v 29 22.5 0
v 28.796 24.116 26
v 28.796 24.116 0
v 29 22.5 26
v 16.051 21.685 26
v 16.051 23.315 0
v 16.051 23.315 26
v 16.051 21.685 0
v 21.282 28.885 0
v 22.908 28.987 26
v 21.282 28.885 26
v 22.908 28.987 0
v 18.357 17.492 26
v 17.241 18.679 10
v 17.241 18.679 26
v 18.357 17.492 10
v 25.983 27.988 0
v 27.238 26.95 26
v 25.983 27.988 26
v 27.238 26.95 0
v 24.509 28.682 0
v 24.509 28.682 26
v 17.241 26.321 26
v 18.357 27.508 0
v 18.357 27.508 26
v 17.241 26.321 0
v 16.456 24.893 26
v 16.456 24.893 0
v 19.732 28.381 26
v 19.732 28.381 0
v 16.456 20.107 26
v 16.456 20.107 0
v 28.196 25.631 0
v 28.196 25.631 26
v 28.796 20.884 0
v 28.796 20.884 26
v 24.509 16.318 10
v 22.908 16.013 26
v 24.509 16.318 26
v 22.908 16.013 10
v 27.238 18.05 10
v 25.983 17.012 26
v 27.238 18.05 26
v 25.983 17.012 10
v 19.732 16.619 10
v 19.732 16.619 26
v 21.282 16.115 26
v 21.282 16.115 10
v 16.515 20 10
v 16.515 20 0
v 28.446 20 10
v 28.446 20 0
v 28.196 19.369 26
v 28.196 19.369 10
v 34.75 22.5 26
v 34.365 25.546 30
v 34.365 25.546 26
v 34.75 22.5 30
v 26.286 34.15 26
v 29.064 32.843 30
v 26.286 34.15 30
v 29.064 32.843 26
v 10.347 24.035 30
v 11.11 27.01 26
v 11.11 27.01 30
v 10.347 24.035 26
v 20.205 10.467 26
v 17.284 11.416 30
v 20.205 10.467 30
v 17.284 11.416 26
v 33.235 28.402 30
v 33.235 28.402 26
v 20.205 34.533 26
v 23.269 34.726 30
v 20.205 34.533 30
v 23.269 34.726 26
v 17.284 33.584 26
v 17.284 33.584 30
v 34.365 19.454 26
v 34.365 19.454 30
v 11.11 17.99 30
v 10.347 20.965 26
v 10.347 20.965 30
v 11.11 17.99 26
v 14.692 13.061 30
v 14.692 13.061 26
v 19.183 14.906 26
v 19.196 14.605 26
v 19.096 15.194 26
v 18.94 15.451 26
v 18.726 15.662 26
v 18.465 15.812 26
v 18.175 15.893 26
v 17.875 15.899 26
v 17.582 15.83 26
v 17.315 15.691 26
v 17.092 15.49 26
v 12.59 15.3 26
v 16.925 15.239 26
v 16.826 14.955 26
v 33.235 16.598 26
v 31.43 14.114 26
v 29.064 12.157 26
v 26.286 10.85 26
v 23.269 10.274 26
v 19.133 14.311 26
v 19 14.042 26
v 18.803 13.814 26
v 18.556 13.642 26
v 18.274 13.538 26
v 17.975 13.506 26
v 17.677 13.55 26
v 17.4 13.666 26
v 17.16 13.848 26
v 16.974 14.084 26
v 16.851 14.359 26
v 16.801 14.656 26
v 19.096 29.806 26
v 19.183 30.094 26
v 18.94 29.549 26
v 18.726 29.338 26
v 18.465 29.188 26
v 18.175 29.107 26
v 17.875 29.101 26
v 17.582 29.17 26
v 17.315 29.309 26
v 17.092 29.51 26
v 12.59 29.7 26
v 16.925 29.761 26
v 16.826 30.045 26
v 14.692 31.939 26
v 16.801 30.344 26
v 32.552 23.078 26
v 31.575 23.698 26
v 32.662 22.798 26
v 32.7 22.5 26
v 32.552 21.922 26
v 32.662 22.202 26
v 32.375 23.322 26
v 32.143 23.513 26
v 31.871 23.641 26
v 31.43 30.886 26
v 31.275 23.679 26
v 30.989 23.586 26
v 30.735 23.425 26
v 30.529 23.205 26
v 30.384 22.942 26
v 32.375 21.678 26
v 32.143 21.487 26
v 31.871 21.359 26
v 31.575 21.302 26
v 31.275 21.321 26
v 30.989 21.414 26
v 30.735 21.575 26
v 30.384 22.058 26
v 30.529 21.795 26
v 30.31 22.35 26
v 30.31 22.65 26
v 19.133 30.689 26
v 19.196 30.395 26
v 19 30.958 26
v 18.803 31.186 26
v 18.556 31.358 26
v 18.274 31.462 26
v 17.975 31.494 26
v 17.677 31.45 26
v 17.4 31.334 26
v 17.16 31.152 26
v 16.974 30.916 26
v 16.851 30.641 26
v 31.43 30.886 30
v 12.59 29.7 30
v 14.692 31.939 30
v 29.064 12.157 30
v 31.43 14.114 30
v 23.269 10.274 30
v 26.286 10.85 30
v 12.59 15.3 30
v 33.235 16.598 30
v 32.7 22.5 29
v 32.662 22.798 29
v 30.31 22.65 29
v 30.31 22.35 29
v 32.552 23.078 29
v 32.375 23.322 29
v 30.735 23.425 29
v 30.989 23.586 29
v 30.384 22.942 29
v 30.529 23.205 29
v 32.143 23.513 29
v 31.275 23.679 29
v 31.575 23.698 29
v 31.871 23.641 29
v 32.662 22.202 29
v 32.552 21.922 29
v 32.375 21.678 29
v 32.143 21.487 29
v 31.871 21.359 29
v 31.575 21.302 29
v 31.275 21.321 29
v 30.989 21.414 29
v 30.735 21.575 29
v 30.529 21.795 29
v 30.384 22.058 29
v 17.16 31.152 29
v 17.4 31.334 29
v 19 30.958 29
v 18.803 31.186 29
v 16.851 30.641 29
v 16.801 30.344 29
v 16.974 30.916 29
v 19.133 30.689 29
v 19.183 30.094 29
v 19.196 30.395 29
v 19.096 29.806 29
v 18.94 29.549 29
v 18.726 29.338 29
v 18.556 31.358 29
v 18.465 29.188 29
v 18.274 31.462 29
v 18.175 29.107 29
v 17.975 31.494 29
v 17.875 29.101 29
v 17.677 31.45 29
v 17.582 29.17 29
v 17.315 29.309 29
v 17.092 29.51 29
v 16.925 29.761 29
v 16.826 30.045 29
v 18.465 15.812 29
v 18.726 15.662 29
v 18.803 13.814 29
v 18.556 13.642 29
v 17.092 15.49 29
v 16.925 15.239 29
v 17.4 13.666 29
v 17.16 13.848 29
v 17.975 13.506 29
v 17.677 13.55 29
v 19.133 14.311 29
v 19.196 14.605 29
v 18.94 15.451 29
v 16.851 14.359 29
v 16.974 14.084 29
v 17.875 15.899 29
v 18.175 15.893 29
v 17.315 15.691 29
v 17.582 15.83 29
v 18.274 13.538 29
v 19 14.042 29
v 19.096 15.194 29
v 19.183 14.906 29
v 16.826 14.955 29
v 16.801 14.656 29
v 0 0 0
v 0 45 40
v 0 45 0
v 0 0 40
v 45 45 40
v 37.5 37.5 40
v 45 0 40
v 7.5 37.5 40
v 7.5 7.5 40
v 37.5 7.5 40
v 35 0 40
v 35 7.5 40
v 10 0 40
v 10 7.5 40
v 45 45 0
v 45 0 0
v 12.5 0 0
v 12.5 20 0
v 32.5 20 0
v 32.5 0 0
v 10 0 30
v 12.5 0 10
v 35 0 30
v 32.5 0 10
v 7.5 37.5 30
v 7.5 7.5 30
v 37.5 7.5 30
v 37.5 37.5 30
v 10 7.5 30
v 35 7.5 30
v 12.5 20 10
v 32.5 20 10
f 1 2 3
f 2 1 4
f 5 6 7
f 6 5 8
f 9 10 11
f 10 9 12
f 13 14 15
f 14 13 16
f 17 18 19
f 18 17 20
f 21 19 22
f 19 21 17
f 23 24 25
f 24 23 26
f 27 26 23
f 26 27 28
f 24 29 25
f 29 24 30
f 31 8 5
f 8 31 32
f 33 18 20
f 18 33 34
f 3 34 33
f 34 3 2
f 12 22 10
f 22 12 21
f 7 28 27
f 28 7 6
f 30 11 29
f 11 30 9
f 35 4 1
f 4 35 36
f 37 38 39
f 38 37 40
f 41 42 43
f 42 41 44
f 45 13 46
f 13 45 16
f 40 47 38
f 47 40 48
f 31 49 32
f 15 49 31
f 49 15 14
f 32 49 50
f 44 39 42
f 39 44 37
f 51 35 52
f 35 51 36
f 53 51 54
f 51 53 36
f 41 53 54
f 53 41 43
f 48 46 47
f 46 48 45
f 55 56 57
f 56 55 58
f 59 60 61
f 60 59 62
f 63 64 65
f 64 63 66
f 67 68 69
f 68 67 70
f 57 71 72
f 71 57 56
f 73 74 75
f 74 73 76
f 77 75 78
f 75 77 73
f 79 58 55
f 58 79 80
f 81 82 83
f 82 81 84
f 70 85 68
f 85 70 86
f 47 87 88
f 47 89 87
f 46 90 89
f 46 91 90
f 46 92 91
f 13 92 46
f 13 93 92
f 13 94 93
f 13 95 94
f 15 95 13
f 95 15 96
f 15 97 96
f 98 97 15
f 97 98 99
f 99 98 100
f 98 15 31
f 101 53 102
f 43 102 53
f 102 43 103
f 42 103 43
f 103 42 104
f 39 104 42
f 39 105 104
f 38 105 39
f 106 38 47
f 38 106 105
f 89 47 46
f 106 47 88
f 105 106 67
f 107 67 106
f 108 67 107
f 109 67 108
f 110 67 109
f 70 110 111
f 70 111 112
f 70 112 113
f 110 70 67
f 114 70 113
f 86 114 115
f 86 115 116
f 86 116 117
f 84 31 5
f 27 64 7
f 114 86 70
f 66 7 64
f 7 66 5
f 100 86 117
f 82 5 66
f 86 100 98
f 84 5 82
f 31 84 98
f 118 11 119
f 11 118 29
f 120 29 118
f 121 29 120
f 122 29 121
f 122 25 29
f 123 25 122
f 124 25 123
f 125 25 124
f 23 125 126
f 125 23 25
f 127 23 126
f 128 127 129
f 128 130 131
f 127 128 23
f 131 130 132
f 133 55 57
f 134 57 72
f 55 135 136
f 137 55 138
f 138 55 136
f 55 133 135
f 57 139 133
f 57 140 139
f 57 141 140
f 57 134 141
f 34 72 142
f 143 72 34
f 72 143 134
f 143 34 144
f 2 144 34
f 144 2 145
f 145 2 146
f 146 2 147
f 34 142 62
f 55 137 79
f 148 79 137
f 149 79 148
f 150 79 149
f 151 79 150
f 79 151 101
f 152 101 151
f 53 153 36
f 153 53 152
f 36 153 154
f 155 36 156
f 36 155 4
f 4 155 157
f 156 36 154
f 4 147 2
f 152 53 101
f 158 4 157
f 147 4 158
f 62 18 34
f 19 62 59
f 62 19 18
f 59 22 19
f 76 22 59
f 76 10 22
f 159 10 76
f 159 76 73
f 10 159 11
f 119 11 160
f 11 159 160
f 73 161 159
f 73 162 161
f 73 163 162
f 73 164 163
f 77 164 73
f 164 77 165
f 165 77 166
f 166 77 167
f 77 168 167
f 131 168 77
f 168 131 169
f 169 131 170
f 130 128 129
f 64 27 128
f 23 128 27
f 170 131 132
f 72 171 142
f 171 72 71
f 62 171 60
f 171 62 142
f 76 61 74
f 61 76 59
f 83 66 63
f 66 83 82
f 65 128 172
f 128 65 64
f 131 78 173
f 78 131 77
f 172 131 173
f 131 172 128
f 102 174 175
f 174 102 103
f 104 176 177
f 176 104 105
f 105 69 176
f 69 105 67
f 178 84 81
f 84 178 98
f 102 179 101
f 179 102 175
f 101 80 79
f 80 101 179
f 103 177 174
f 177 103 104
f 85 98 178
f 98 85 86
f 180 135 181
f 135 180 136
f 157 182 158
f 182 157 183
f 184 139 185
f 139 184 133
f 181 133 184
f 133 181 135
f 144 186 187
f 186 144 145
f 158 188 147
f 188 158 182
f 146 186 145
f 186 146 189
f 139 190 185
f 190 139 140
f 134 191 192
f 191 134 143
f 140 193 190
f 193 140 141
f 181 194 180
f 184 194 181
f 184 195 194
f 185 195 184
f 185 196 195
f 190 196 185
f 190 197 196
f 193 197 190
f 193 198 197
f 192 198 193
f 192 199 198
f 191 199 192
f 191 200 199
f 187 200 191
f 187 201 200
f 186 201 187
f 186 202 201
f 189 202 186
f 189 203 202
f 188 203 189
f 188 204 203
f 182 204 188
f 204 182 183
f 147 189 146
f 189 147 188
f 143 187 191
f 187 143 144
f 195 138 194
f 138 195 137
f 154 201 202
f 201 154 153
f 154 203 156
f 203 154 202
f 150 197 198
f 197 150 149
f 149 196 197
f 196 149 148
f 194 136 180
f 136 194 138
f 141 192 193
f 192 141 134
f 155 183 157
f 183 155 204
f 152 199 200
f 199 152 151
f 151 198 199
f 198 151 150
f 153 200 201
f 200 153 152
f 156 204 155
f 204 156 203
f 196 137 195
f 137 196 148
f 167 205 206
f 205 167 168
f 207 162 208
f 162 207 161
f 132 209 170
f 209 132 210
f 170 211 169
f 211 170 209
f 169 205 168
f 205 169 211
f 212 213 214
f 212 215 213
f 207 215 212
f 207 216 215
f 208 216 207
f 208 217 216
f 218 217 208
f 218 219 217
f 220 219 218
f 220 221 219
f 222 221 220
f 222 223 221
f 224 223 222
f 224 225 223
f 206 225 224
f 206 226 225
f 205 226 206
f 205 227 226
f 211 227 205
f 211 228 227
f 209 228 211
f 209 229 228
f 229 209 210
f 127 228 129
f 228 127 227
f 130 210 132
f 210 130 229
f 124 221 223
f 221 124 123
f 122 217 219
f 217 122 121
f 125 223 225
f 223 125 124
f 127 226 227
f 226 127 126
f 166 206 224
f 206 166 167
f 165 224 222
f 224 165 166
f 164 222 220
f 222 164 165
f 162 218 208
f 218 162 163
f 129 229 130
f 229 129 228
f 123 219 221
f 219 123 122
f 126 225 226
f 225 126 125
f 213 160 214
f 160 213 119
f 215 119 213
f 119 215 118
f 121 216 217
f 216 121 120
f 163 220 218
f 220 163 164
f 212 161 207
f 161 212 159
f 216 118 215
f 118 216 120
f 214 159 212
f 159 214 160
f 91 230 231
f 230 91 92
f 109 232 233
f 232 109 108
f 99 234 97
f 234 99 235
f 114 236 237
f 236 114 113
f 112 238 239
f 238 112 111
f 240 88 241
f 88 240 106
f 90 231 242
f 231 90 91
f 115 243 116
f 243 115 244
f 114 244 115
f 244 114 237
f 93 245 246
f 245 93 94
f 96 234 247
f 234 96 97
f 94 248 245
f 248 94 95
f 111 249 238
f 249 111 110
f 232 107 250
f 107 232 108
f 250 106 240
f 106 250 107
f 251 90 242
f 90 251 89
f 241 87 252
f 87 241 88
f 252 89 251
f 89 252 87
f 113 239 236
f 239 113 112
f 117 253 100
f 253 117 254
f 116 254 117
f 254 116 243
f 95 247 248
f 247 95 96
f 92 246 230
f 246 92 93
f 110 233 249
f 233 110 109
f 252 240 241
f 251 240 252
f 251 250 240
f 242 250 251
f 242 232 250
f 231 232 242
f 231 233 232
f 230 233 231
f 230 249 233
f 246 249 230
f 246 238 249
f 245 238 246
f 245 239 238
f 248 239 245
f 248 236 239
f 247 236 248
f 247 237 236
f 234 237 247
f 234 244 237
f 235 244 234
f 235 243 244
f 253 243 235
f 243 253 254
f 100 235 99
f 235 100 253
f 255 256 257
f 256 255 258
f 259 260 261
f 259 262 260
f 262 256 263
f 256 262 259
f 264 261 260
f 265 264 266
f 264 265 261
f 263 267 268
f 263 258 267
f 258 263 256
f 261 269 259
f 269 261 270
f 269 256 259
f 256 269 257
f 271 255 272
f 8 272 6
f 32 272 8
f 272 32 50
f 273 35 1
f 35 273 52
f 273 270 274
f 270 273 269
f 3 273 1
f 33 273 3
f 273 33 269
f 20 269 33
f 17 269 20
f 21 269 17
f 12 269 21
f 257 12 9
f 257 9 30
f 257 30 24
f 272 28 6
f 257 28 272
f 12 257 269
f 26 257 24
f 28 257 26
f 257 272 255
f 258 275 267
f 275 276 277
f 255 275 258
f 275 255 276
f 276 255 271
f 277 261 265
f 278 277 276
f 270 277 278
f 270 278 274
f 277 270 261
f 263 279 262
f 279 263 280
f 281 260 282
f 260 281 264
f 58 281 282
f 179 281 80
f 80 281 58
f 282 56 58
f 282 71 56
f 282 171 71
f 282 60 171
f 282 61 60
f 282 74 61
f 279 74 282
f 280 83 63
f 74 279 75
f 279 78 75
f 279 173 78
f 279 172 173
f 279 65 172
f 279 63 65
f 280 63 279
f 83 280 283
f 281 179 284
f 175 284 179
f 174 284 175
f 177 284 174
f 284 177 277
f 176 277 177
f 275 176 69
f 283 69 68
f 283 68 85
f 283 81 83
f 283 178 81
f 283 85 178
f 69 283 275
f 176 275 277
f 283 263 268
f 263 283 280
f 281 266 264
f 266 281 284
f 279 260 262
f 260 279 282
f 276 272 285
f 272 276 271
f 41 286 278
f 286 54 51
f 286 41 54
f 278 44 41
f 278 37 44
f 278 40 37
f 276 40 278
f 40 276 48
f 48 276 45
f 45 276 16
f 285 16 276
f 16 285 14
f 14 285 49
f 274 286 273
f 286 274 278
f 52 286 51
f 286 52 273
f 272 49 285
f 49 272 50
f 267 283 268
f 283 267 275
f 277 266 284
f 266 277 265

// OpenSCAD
motor_thickness = 30;
oversize = 15;
$fn = 25;

union()
{
    difference()
    {
        cube([motor_thickness + oversize, motor_thickness + oversize, 40]);
        translate([oversize / 2, oversize / 2, 30])
        {
            cube([motor_thickness, motor_thickness, 11]);
        }
        translate([(motor_thickness + oversize) / 2, (motor_thickness + oversize) / 2, -1])
        {
            cylinder(d = 13, h = 60);
            translate([0, 0, 27])
            cylinder(d = 24.5, h = 5);
        }
        translate([12.5, 0, 0])
        {
            cube([20, 20, 10]);
        }
        translate([10, 0, 30])
        {
            cube([25, 10, 10]);
        }
    }
        translate([(motor_thickness + oversize) / 2, (motor_thickness + oversize) / 2, -1])
    {
        translate([0, 0, 20])
        {
            translate([9, 0, 0])
            {
                cylinder(d = 2.4, h = 10);
            }
            rotate([0, 0, 120])
            {
                translate([9, 0, 0])
                {
                    cylinder(d = 2.4, h = 10);
                }
            }
            rotate([0, 0, 240])
            {
                translate([9, 0, 0])
                {
                    cylinder(d = 2.4, h = 10);
                }
            }
        }
                
    }
}
